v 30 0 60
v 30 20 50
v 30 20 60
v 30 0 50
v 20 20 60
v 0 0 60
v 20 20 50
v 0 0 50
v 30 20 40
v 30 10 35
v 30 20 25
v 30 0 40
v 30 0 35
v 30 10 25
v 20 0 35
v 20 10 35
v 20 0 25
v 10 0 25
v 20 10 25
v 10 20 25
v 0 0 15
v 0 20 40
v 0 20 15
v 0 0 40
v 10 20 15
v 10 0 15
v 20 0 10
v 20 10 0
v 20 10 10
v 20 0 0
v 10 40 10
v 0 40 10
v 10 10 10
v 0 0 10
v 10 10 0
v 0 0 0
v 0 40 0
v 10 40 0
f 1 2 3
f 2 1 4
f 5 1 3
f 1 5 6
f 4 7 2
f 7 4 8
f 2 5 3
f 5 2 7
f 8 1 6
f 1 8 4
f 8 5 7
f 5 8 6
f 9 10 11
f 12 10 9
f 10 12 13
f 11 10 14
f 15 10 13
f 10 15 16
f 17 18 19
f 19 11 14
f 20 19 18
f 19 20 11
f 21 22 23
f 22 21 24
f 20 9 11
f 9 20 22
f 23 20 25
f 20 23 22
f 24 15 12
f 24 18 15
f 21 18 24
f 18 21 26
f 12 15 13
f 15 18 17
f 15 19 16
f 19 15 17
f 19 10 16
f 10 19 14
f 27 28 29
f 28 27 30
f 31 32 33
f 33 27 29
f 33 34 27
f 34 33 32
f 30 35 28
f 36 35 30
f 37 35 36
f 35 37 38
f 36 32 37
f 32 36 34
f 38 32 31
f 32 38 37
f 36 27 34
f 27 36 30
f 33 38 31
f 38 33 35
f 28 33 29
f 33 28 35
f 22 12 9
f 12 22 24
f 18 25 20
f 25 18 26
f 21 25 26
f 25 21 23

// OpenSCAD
// Define the dimensions for each component
module l_shaped_block() {
    difference() {
        cube([20, 40, 10]); // Outer block
        translate([10, 10, 0]) cube([10, 30, 10]); // Cutout to form L-shape
    }
}

module small_rectangular_block() {
    cube([10, 20, 10]);
}

module notched_rectangular_block() {
    difference() {
        cube([30, 20, 10]); // Outer block
        translate([20, 0, 0]) cube([10, 10, 10]); // Notch
    }
}

module angled_block() {
    polyhedron(
        points=[
            [0, 0, 0], [30, 0, 0], [30, 20, 0], [0, 20, 0], // Bottom face
            [0, 0, 10], [30, 0, 10], [15, 20, 10], [0, 20, 10] // Top face
        ],
        faces=[
            [0, 1, 2, 3], // Bottom
            [4, 5, 6, 7], // Top
            [0, 1, 5, 4], // Side 1
            [1, 2, 6, 5], // Side 2
            [2, 3, 7, 6], // Side 3
            [3, 0, 4, 7]  // Side 4
        ]
    );
}

module flat_rectangular_block() {
    cube([30, 20, 5]);
}

module v_shaped_block() {
    difference() {
        cube([30, 20, 10]); // Outer block
        translate([0, 0, 0]) rotate([0, 0, 45]) cube([30, 30, 10]); // Cutout to form V-shape
    }
}

// Assemble the components based on the positional relationships
module assembly() {
    translate([0, 0, 50]) v_shaped_block(); // Layer 1
    translate([0, 0, 40]) angled_block(); // Layer 2
    translate([0, 0, 35]) flat_rectangular_block(); // Layer 3
    translate([0, 0, 25]) notched_rectangular_block(); // Layer 4
    translate([0, 0, 15]) small_rectangular_block(); // Layer 5
    translate([0, 0, 0]) l_shaped_block(); // Layer 6
}

// Render the assembly
assembly();
